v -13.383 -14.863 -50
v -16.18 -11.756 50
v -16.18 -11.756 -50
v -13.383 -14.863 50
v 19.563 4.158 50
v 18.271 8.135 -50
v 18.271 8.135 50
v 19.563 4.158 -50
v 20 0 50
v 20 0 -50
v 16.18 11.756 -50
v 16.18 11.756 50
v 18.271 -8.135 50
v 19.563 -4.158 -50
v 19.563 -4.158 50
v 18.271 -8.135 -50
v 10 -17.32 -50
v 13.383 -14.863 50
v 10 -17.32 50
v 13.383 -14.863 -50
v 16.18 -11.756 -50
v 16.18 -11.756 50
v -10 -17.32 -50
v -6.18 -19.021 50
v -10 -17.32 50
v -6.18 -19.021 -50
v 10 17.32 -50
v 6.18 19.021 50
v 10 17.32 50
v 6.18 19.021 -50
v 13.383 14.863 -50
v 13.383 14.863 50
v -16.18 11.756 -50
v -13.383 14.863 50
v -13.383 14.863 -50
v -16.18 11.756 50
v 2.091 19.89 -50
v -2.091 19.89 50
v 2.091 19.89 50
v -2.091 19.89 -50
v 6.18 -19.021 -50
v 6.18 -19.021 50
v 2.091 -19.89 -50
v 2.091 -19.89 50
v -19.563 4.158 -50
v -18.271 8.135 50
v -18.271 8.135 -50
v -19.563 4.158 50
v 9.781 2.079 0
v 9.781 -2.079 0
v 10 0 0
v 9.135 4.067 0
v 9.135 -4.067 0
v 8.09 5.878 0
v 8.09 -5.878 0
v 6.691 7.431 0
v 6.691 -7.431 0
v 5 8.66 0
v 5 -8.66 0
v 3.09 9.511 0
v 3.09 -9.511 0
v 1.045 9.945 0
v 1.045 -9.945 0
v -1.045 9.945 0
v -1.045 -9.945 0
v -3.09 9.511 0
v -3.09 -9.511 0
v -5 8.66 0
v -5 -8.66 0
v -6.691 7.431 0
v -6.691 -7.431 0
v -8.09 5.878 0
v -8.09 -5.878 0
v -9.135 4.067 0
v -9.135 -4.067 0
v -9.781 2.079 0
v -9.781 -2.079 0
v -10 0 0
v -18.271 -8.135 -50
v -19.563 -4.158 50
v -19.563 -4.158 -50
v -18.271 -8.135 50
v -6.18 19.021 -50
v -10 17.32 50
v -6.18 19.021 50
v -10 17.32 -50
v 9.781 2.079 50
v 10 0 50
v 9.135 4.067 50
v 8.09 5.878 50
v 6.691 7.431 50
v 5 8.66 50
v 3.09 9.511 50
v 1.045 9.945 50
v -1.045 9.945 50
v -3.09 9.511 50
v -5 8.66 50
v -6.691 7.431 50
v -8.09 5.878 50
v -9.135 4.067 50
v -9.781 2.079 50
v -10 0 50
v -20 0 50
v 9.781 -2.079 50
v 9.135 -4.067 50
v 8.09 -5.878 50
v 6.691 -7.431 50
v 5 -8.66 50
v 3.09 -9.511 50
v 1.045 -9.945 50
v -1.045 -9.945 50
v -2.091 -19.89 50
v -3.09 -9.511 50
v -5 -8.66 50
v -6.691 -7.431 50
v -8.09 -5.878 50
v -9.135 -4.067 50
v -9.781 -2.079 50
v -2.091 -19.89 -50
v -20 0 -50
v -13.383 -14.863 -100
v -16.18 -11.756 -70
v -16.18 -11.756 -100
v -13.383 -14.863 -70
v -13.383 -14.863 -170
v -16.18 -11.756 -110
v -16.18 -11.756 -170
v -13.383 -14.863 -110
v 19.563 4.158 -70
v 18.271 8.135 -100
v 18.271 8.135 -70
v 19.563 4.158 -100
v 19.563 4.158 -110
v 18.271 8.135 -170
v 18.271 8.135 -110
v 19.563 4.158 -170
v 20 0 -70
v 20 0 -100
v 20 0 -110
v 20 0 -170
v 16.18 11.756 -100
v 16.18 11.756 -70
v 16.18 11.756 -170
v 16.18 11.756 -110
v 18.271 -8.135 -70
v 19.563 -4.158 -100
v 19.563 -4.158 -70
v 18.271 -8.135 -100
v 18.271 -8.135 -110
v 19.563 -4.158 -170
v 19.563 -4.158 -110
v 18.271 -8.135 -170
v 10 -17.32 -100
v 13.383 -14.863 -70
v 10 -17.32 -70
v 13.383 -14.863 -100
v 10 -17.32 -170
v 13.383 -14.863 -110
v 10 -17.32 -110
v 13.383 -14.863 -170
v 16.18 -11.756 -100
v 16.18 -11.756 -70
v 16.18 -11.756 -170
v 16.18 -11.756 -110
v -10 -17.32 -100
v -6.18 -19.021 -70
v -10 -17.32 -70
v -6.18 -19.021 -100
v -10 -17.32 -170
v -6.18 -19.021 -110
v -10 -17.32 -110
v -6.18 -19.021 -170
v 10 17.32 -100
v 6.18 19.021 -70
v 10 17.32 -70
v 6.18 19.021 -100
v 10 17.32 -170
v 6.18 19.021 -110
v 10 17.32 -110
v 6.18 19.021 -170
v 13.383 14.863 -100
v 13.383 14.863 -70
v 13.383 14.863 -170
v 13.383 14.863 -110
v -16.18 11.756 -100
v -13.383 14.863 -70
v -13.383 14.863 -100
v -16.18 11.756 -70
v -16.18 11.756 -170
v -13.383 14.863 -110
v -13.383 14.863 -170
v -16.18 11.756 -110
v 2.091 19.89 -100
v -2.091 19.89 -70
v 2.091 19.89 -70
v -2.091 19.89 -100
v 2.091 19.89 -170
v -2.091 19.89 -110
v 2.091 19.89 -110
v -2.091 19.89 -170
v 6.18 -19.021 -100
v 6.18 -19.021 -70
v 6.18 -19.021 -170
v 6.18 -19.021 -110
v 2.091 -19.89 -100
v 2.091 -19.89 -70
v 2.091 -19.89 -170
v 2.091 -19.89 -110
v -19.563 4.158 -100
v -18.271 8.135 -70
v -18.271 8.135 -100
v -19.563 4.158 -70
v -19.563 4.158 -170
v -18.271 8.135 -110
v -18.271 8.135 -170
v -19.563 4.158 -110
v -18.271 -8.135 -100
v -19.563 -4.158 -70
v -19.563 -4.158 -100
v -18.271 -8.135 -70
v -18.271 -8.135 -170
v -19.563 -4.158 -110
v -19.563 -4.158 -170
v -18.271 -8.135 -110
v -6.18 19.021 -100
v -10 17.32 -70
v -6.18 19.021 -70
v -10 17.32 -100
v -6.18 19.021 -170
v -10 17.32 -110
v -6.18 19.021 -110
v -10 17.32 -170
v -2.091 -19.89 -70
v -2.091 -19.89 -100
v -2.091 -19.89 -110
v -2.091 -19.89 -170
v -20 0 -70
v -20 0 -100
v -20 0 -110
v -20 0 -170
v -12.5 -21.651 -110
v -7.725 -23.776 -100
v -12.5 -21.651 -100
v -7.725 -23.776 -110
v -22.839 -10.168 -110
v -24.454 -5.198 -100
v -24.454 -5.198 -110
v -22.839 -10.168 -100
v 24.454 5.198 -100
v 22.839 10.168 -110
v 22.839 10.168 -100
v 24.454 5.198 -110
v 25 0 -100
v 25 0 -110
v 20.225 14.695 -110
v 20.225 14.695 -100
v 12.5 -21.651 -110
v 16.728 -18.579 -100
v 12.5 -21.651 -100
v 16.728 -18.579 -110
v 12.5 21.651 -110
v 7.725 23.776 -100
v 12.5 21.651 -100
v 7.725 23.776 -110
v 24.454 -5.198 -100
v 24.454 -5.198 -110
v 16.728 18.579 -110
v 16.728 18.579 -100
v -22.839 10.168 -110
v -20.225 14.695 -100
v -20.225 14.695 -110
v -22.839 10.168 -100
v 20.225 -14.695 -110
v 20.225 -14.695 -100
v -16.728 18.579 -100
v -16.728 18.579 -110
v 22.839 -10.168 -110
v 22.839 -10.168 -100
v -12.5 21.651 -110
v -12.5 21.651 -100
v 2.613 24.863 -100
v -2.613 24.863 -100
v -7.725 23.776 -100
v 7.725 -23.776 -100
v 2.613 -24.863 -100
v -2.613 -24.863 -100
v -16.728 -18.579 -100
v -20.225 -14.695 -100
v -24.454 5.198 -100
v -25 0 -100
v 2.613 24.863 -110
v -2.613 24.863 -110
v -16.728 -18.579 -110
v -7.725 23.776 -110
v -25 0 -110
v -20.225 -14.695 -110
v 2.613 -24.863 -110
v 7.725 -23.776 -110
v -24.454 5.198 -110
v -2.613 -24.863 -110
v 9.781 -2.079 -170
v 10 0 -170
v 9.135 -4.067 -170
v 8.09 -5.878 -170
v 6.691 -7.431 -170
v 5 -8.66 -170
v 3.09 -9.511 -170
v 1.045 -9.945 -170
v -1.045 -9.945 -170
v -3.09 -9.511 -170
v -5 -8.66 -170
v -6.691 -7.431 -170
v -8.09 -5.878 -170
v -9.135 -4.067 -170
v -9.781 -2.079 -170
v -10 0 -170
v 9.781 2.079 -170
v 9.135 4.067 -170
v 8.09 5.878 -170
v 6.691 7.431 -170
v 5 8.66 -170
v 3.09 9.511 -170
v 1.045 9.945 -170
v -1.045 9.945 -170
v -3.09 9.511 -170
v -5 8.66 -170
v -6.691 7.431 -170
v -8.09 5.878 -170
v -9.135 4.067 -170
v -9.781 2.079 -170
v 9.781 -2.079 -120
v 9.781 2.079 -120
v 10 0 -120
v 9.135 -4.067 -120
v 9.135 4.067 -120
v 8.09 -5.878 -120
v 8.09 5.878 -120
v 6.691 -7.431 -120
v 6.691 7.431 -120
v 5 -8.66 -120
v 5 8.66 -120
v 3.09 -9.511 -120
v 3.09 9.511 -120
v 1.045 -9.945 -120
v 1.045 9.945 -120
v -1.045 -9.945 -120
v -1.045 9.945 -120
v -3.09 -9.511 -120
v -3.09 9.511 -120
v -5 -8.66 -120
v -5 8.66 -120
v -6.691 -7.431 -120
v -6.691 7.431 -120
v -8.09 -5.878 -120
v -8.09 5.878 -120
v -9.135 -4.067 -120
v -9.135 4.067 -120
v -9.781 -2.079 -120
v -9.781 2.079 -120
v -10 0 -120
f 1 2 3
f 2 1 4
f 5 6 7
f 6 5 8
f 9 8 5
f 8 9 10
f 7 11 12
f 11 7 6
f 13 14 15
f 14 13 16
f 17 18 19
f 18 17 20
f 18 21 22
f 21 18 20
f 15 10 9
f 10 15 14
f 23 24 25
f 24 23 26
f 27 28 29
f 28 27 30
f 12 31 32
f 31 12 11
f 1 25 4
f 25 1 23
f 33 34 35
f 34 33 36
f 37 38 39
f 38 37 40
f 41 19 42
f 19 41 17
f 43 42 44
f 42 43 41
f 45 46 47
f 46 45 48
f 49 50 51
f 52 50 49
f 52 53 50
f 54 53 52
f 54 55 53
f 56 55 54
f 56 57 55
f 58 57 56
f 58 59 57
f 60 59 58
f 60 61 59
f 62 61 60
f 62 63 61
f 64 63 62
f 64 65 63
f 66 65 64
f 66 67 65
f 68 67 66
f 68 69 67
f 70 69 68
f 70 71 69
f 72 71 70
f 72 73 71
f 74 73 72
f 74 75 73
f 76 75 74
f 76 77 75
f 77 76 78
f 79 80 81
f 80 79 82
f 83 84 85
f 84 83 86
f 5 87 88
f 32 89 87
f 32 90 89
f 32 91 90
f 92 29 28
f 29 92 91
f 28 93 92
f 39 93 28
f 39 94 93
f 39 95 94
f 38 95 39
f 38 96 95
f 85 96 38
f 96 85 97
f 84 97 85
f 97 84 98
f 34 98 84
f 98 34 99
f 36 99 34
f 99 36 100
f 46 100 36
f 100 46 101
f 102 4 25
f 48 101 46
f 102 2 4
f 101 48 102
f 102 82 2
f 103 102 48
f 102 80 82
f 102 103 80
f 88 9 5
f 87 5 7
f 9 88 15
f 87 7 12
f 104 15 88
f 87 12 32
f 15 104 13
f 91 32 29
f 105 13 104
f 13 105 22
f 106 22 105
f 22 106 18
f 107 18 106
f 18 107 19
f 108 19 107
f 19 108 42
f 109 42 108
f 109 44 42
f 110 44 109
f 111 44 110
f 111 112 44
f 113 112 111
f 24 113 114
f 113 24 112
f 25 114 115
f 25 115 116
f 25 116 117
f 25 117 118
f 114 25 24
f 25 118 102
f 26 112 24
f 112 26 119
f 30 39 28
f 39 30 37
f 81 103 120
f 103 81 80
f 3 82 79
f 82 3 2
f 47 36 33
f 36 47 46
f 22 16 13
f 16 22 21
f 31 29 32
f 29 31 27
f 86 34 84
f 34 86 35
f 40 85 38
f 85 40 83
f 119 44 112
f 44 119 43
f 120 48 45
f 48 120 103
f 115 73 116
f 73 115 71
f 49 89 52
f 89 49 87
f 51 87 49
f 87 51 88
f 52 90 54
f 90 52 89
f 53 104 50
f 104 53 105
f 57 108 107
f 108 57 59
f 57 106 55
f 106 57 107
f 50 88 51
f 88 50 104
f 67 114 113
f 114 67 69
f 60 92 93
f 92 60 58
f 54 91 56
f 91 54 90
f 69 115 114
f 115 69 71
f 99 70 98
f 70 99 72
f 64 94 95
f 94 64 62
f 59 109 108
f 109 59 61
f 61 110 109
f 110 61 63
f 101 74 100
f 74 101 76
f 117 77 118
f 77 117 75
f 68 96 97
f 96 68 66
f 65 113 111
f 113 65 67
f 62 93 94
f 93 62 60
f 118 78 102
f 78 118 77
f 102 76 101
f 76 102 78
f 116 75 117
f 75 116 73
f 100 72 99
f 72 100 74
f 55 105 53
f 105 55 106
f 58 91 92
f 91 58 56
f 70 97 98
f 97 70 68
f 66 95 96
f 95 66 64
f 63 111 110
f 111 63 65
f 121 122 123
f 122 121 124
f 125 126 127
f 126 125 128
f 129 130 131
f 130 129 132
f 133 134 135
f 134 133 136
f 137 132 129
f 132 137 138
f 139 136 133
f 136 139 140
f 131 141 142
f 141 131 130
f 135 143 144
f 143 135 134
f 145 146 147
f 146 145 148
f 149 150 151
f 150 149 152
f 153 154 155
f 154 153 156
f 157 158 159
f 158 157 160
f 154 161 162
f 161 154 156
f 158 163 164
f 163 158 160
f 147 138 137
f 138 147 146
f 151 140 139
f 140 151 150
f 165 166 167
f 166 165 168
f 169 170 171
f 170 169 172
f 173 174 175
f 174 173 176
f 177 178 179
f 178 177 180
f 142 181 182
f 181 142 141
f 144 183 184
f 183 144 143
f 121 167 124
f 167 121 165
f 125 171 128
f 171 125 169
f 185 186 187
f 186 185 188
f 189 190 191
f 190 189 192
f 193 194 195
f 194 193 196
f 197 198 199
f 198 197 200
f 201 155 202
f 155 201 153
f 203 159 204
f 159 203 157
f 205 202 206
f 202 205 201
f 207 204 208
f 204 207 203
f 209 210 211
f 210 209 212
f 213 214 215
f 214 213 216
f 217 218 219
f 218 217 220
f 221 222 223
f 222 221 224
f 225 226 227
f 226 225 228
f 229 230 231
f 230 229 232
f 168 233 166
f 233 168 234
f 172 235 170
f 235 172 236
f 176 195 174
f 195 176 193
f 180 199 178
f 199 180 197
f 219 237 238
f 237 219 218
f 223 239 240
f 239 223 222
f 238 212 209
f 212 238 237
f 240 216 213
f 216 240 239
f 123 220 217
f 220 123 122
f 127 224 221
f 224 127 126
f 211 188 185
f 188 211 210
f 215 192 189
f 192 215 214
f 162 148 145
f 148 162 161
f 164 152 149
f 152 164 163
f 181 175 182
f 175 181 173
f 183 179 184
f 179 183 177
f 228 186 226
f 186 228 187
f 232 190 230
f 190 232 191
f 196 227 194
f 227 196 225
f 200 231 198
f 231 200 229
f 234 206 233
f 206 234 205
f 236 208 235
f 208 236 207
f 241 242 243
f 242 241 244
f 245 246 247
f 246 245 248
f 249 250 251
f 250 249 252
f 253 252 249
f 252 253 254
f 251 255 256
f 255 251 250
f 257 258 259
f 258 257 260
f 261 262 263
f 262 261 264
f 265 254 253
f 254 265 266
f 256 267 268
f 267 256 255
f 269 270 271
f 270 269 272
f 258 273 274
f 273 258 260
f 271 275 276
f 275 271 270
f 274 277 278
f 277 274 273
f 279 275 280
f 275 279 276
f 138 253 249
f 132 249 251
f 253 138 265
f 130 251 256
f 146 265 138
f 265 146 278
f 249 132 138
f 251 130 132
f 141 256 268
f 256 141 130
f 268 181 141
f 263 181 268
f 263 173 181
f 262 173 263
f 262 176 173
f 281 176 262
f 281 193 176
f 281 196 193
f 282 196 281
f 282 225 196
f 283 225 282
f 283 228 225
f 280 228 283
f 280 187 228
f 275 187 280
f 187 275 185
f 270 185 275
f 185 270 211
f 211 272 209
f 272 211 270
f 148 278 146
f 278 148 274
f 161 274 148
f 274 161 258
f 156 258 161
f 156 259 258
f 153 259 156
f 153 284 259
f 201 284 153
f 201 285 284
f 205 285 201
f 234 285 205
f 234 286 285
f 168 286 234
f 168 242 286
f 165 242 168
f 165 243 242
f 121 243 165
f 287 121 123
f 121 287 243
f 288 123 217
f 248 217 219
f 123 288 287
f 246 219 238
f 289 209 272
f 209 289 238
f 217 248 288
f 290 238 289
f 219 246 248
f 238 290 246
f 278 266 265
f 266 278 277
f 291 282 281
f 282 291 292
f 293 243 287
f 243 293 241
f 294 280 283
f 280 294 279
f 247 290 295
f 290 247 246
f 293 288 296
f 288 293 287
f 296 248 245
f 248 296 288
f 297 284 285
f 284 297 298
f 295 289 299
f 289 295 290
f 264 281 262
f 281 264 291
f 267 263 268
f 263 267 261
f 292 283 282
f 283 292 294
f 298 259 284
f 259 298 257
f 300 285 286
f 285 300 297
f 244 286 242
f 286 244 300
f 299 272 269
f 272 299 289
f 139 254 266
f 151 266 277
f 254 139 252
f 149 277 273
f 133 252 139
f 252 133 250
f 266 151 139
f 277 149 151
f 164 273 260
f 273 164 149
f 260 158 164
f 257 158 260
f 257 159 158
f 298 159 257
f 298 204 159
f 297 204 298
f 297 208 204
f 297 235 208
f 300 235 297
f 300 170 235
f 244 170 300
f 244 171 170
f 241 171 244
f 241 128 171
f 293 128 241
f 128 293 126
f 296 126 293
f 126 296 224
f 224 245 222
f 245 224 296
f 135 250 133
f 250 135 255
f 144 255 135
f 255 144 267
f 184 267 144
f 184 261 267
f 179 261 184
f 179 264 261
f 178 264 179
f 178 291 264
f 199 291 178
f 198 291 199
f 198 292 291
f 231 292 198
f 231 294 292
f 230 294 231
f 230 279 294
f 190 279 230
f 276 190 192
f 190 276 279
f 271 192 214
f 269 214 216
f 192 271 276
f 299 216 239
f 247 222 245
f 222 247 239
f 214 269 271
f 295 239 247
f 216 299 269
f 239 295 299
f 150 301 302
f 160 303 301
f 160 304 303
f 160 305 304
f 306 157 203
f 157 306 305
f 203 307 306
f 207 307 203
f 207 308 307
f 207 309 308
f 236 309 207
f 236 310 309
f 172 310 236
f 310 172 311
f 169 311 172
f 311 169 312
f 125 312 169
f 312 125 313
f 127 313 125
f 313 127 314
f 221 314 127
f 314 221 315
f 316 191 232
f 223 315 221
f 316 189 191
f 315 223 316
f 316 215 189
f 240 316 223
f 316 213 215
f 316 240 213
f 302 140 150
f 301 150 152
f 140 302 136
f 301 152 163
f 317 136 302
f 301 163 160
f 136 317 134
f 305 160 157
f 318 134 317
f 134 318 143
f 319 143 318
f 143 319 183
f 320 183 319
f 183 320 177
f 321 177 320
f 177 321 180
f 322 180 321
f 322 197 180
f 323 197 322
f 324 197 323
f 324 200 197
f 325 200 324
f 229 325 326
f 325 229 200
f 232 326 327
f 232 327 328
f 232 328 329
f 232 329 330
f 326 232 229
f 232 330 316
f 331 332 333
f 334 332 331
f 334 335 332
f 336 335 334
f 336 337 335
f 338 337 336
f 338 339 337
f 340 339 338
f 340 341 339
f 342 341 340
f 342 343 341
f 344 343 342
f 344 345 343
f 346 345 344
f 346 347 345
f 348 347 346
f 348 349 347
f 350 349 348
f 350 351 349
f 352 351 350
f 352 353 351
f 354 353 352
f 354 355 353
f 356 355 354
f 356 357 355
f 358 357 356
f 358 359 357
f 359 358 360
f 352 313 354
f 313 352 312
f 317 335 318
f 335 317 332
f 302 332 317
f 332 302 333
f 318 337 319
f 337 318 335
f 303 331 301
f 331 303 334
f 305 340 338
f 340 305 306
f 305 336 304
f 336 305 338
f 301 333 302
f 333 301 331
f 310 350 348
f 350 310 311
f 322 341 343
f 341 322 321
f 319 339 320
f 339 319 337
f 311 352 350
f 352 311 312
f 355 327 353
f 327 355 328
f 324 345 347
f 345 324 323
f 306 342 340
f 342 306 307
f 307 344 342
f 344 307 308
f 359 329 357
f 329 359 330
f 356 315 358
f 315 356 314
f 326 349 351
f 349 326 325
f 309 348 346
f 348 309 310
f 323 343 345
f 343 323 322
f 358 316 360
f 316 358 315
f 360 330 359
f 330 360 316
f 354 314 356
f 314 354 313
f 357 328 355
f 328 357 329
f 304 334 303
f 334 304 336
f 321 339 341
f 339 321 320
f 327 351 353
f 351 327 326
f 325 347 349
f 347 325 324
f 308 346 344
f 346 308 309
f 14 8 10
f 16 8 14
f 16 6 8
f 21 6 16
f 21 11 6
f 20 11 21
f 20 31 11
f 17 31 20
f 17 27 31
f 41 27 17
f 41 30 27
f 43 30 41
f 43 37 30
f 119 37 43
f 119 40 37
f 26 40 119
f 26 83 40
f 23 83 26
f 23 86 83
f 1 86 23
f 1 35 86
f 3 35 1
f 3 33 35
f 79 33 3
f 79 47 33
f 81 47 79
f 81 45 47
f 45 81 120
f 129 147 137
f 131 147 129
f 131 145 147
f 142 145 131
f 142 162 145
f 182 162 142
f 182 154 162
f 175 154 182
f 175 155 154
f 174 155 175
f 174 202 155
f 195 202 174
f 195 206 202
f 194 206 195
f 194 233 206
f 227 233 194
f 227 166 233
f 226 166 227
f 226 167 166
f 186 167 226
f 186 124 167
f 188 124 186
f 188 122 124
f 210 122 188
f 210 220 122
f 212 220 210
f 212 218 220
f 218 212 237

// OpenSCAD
// Define parameters for components
hollow_cylindrical_body_diameter = 40;
hollow_cylindrical_body_height = 50;
hollow_cylindrical_body_inner_diameter = 20;

solid_cylindrical_body_diameter = 40;
solid_cylindrical_body_height = 50;

spacer_ring_outer_diameter = 40;
spacer_ring_inner_diameter = 30;
spacer_ring_thickness = 5;

flange_plate_outer_diameter = 50;
flange_plate_inner_diameter = 30;
flange_plate_thickness = 5;

bolt_diameter = 5;
bolt_length = 60;

nut_diameter = 10;
nut_thickness = 5;

// Hollow cylindrical body
module hollow_cylindrical_body() {
    difference() {
        cylinder(h = hollow_cylindrical_body_height, d = hollow_cylindrical_body_diameter);
        translate([0, 0, -1]) // Ensure inner cavity runs through
            cylinder(h = hollow_cylindrical_body_height + 2, d = hollow_cylindrical_body_inner_diameter);
    }
}

// Solid cylindrical body
module solid_cylindrical_body() {
    cylinder(h = solid_cylindrical_body_height, d = solid_cylindrical_body_diameter);
}

// Spacer ring
module spacer_ring() {
    difference() {
        cylinder(h = spacer_ring_thickness, d = spacer_ring_outer_diameter);
        translate([0, 0, -1]) // Ensure hollow center
            cylinder(h = spacer_ring_thickness + 2, d = spacer_ring_inner_diameter);
    }
}

// Flange plate
module flange_plate() {
    difference() {
        cylinder(h = flange_plate_thickness, d = flange_plate_outer_diameter);
        translate([0, 0, -1]) // Ensure hollow center
            cylinder(h = flange_plate_thickness + 2, d = flange_plate_inner_diameter);
    }
}

// Bolt
module bolt() {
    cylinder(h = bolt_length, d = bolt_diameter);
}

// Nut
module nut() {
    difference() {
        cylinder(h = nut_thickness, d = nut_diameter);
        translate([0, 0, -1]) // Ensure threaded cavity
            cylinder(h = nut_thickness + 2, d = bolt_diameter);
    }
}

// Assemble the model
translate([0, 0, 0]) hollow_cylindrical_body(); // Layer 1
translate([0, 0, -hollow_cylindrical_body_height]) solid_cylindrical_body(); // Layer 2
translate([0, 0, -hollow_cylindrical_body_height - solid_cylindrical_body_height]) spacer_ring(); // Layer 3
translate([0, 0, -hollow_cylindrical_body_height - solid_cylindrical_body_height - spacer_ring_thickness]) flange_plate(); // Layer 4
translate([0, 0, -hollow_cylindrical_body_height - solid_cylindrical_body_height - spacer_ring_thickness - flange_plate_thickness]) flange_plate(); // Layer 5
translate([0, 0, -hollow_cylindrical_body_height - solid_cylindrical_body_height - spacer_ring_thickness - flange_plate_thickness * 2]) spacer_ring(); // Layer 6
translate([0, 0, -hollow_cylindrical_body_height - solid_cylindrical_body_height - spacer_ring_thickness - flange_plate_thickness * 2 - spacer_ring_thickness]) solid_cylindrical_body(); // Layer 7
translate([0, 0, -hollow_cylindrical_body_height - solid_cylindrical_body_height - spacer_ring_thickness - flange_plate_thickness * 2 - spacer_ring_thickness - solid_cylindrical_body_height]) hollow_cylindrical_body(); // Layer 8
